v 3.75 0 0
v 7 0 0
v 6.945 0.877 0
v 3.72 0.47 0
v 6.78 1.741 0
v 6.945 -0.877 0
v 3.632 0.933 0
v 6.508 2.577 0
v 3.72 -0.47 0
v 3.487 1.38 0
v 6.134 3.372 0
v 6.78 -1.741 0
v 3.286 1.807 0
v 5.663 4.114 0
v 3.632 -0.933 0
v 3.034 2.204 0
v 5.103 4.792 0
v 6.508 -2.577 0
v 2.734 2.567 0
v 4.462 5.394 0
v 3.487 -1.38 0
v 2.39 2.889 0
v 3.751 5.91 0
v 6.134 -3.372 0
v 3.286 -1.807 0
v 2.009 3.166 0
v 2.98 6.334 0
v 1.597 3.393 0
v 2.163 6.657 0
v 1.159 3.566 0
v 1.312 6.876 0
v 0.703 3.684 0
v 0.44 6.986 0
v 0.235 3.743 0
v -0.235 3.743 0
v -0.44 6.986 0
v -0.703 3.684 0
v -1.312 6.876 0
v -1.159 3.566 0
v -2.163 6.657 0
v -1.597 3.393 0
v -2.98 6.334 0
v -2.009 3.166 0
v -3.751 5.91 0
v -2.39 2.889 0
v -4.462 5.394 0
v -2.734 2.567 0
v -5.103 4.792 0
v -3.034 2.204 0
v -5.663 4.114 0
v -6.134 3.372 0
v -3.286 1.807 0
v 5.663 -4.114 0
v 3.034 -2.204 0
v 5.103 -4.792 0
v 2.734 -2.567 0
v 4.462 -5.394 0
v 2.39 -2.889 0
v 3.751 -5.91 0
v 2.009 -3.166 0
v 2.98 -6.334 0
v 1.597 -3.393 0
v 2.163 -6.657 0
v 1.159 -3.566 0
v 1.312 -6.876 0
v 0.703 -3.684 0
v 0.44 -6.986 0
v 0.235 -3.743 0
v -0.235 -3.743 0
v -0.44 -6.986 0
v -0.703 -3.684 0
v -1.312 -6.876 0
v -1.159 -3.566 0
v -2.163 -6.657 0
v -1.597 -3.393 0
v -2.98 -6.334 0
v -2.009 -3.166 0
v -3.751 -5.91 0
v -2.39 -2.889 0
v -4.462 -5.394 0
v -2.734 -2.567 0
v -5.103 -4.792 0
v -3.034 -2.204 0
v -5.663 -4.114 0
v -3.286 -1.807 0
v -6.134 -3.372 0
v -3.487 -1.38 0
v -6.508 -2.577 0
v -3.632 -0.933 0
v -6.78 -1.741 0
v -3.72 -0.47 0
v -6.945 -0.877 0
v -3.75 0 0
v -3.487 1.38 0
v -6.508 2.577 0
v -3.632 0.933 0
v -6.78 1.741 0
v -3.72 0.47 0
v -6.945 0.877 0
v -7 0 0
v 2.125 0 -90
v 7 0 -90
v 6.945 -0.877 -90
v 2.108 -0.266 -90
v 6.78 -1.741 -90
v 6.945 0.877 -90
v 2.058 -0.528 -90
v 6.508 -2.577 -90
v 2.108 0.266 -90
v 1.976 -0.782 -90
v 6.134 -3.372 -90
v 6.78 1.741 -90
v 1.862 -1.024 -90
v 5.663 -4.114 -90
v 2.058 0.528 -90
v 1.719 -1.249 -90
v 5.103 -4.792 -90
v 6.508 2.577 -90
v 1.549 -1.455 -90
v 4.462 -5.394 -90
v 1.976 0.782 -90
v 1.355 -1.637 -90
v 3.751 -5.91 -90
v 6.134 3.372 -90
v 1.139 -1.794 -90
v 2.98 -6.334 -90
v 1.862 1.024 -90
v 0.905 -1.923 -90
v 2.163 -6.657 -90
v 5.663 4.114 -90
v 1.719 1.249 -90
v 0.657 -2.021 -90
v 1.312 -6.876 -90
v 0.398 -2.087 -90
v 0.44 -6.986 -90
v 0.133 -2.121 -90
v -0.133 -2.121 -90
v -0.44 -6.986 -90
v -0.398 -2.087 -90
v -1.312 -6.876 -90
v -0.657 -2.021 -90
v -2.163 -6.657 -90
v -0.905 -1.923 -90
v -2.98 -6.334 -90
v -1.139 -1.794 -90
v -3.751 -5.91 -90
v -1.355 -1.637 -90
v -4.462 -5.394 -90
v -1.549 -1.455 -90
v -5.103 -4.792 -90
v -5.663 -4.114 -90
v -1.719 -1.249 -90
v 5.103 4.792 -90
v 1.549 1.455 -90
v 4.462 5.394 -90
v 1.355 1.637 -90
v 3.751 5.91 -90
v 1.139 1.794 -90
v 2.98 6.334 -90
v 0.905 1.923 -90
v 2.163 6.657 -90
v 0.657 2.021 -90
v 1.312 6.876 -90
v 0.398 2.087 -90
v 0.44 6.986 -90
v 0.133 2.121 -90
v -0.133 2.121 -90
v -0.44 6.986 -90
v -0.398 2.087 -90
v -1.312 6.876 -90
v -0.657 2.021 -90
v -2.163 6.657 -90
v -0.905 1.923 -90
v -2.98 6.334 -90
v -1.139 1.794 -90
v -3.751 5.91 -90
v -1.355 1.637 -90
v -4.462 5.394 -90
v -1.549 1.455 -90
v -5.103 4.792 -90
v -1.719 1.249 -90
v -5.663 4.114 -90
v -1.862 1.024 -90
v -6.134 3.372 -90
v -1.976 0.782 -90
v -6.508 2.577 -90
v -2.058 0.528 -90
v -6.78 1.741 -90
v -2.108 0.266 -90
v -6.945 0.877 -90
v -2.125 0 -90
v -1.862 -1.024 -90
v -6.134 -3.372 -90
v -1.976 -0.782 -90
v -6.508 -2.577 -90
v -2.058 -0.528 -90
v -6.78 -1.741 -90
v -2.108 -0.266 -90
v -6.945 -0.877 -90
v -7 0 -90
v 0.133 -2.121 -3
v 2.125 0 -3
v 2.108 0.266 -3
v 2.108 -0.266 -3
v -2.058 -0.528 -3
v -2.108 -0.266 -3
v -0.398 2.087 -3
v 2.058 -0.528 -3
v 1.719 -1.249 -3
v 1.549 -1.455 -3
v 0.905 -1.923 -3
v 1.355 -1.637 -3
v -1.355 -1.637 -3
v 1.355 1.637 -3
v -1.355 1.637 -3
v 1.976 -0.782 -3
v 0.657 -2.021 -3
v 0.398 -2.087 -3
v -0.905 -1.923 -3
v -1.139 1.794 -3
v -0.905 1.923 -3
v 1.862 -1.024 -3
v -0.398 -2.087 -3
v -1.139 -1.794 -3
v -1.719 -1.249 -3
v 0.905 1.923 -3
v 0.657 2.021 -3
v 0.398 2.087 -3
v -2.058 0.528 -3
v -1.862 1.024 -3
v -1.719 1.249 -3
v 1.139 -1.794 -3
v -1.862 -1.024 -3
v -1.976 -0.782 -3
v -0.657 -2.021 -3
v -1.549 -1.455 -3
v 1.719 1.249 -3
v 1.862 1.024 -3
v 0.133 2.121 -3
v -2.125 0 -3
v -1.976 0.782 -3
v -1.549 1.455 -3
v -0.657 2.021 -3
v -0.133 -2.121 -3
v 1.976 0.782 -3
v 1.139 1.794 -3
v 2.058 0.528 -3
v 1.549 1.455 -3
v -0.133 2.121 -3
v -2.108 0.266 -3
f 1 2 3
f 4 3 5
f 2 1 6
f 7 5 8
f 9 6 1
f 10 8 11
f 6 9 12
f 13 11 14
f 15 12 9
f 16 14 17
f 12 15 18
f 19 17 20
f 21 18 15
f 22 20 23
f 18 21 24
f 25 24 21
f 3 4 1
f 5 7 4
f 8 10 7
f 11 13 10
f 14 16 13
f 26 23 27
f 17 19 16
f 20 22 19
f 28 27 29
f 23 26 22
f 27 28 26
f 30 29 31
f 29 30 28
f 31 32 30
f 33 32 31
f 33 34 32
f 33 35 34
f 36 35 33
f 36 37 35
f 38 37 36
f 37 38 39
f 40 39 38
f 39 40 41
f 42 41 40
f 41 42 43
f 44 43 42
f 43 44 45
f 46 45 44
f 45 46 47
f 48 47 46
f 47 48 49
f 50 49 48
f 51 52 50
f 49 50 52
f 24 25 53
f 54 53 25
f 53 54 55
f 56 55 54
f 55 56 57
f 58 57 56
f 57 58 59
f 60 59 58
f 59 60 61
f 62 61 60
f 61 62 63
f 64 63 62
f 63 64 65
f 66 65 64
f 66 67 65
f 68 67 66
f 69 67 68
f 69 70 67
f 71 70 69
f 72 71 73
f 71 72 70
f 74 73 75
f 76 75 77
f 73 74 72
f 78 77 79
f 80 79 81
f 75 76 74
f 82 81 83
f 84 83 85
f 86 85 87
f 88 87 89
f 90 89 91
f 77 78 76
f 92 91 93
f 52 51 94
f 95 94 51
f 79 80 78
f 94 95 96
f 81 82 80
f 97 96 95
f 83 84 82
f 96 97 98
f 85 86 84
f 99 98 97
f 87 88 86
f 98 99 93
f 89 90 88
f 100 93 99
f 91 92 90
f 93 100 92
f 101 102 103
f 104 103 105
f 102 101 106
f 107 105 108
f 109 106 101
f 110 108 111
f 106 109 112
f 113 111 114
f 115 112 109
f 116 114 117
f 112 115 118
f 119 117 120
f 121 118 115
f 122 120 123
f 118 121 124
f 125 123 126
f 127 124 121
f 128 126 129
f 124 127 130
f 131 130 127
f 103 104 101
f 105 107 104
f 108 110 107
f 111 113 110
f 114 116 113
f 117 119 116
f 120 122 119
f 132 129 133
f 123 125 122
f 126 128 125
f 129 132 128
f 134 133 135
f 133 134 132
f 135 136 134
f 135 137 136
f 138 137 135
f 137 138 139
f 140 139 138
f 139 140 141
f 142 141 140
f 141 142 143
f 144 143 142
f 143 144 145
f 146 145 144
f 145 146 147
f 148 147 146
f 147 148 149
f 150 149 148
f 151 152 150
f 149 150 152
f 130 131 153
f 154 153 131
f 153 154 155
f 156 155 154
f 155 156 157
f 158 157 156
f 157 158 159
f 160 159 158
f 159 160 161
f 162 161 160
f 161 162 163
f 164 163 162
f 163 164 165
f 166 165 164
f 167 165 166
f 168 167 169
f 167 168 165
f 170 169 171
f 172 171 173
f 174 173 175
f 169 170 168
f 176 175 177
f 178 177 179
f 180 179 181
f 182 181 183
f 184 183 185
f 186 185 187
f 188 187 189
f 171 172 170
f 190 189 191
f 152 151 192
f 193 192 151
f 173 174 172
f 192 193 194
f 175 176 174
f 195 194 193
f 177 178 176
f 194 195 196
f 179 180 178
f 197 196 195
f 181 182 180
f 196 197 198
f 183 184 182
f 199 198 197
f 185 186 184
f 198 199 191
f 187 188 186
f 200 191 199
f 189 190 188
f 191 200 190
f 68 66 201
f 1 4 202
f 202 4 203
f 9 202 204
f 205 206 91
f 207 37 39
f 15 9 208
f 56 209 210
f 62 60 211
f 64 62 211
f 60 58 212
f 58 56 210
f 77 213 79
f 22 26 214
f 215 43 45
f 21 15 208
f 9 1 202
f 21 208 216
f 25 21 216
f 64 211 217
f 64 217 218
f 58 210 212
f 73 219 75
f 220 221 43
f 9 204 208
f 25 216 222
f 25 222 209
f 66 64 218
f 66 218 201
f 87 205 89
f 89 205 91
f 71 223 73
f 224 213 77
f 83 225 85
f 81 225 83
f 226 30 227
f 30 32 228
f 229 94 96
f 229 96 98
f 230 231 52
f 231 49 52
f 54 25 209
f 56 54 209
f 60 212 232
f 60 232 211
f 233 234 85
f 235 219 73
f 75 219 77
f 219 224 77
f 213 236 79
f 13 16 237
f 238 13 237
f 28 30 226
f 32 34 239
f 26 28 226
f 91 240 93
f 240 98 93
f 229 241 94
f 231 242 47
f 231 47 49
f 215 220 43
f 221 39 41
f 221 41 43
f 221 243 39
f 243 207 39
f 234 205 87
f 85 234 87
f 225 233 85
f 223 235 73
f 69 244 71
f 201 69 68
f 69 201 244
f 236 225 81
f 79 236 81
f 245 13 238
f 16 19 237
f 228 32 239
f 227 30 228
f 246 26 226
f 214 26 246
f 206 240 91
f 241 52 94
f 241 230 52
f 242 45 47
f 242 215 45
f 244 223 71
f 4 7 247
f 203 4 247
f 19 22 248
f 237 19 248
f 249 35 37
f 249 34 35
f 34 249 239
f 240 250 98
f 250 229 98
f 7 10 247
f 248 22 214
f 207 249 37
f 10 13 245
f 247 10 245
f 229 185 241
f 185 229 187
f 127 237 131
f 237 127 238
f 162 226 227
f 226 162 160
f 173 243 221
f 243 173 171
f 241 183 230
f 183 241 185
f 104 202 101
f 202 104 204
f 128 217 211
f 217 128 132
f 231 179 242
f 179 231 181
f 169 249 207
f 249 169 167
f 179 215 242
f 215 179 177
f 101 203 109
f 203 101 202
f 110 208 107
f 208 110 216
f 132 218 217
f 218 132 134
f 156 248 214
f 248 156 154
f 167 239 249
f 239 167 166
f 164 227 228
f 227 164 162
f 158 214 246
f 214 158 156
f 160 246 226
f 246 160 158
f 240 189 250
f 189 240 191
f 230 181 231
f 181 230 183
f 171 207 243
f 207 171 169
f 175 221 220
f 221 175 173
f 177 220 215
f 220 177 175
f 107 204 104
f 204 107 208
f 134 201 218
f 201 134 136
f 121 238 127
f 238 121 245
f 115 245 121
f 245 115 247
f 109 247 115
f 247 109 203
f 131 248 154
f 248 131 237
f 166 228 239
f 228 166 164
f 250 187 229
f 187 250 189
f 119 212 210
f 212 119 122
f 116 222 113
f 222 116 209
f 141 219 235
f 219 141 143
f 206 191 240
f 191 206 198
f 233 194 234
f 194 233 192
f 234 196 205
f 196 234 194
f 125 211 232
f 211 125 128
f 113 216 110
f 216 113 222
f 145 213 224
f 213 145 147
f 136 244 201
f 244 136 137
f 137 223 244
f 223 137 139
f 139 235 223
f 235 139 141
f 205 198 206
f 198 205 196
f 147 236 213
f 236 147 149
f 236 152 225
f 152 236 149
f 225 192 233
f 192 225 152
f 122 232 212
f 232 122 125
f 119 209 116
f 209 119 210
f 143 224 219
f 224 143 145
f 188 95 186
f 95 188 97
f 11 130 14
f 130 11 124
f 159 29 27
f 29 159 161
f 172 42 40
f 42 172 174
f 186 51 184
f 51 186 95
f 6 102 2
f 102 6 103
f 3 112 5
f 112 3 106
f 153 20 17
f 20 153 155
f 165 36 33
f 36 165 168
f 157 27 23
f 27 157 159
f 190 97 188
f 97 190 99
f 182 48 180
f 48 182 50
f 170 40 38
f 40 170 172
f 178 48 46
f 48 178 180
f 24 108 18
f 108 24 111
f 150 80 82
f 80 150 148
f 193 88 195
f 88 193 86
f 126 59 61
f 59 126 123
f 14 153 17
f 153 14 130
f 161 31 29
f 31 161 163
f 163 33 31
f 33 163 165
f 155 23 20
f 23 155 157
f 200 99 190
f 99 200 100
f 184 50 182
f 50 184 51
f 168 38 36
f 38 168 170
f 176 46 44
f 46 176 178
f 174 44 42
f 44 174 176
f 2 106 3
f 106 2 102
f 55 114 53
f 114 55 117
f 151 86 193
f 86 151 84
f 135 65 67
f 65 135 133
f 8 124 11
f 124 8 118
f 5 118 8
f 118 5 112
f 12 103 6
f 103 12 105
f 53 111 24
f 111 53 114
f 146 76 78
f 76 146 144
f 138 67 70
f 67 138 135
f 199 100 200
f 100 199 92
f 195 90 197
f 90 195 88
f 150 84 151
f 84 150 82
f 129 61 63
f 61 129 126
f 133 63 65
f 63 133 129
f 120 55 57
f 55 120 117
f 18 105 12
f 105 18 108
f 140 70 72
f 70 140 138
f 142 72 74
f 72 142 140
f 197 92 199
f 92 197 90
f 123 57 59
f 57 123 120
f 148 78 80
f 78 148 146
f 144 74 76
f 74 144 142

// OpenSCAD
$fn = 50;


difference() {
	union() {
		translate(v = [0, 0, -90.0000000000]) {
			cylinder(h = 90, r = 7.0000000000);
		}
		cylinder(h = 0, r = 17.0000000000);
	}
	union() {
		translate(v = [0, 0, 0]) {
			rotate(a = [0, 0, 0]) {
				difference() {
					union() {
						#translate(v = [0, 0, -90.0000000000]) {
							cylinder(h = 90, r = 2.0000000000);
						}
						#translate(v = [0, 0, -3]) {
							cylinder(h = 3, r = 7.0000000000, r1 = 2.1250000000, r2 = 3.7500000000);
						}
						#translate(v = [0, 0, -90.0000000000]) {
							cylinder(h = 90, r = 2.1250000000);
						}
						#translate(v = [0, 0, -90.0000000000]) {
							cylinder(h = 90, r = 2.0000000000);
						}
					}
					union();
				}
			}
		}
	}
}
